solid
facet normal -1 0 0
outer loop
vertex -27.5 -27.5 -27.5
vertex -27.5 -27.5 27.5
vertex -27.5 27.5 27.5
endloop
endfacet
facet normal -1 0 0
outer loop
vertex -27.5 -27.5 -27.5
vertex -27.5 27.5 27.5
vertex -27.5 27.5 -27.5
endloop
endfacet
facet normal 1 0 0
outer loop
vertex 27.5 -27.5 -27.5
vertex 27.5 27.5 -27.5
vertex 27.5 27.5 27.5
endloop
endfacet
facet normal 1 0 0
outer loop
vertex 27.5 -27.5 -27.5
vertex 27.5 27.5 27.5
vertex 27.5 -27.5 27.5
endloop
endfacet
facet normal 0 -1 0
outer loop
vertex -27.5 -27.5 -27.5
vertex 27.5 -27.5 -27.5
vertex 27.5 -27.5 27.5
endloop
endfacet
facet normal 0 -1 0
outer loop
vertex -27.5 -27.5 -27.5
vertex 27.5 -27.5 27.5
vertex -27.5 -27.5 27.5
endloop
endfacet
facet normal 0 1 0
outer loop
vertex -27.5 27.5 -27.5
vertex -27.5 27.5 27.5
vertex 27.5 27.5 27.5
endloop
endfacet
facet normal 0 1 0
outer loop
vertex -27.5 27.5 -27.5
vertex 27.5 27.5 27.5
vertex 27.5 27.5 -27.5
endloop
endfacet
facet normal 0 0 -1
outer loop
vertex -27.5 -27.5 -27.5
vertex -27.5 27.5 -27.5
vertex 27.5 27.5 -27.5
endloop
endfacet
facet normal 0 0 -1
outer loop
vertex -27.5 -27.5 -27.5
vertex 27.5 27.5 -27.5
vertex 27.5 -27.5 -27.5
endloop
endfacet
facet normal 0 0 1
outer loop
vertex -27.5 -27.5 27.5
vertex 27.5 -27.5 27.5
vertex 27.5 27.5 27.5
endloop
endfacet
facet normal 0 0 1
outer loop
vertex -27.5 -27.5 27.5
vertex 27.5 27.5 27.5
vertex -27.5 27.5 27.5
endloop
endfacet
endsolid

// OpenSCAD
// Millimeters. Same vertices as STL and simulation.
polyhedron(points=[[-27.5, -27.5, -27.5], [-27.5, -27.5, 27.5], [-27.5, 27.5, -27.5], [-27.5, 27.5, 27.5], [27.5, -27.5, -27.5], [27.5, -27.5, 27.5], [27.5, 27.5, -27.5], [27.5, 27.5, 27.5]], faces=[[3, 1, 0], [2, 3, 0], [7, 6, 4], [5, 7, 4], [5, 4, 0], [1, 5, 0], [7, 3, 2], [6, 7, 2], [6, 2, 0], [4, 6, 0], [7, 5, 1], [3, 7, 1]], convexity=10);
